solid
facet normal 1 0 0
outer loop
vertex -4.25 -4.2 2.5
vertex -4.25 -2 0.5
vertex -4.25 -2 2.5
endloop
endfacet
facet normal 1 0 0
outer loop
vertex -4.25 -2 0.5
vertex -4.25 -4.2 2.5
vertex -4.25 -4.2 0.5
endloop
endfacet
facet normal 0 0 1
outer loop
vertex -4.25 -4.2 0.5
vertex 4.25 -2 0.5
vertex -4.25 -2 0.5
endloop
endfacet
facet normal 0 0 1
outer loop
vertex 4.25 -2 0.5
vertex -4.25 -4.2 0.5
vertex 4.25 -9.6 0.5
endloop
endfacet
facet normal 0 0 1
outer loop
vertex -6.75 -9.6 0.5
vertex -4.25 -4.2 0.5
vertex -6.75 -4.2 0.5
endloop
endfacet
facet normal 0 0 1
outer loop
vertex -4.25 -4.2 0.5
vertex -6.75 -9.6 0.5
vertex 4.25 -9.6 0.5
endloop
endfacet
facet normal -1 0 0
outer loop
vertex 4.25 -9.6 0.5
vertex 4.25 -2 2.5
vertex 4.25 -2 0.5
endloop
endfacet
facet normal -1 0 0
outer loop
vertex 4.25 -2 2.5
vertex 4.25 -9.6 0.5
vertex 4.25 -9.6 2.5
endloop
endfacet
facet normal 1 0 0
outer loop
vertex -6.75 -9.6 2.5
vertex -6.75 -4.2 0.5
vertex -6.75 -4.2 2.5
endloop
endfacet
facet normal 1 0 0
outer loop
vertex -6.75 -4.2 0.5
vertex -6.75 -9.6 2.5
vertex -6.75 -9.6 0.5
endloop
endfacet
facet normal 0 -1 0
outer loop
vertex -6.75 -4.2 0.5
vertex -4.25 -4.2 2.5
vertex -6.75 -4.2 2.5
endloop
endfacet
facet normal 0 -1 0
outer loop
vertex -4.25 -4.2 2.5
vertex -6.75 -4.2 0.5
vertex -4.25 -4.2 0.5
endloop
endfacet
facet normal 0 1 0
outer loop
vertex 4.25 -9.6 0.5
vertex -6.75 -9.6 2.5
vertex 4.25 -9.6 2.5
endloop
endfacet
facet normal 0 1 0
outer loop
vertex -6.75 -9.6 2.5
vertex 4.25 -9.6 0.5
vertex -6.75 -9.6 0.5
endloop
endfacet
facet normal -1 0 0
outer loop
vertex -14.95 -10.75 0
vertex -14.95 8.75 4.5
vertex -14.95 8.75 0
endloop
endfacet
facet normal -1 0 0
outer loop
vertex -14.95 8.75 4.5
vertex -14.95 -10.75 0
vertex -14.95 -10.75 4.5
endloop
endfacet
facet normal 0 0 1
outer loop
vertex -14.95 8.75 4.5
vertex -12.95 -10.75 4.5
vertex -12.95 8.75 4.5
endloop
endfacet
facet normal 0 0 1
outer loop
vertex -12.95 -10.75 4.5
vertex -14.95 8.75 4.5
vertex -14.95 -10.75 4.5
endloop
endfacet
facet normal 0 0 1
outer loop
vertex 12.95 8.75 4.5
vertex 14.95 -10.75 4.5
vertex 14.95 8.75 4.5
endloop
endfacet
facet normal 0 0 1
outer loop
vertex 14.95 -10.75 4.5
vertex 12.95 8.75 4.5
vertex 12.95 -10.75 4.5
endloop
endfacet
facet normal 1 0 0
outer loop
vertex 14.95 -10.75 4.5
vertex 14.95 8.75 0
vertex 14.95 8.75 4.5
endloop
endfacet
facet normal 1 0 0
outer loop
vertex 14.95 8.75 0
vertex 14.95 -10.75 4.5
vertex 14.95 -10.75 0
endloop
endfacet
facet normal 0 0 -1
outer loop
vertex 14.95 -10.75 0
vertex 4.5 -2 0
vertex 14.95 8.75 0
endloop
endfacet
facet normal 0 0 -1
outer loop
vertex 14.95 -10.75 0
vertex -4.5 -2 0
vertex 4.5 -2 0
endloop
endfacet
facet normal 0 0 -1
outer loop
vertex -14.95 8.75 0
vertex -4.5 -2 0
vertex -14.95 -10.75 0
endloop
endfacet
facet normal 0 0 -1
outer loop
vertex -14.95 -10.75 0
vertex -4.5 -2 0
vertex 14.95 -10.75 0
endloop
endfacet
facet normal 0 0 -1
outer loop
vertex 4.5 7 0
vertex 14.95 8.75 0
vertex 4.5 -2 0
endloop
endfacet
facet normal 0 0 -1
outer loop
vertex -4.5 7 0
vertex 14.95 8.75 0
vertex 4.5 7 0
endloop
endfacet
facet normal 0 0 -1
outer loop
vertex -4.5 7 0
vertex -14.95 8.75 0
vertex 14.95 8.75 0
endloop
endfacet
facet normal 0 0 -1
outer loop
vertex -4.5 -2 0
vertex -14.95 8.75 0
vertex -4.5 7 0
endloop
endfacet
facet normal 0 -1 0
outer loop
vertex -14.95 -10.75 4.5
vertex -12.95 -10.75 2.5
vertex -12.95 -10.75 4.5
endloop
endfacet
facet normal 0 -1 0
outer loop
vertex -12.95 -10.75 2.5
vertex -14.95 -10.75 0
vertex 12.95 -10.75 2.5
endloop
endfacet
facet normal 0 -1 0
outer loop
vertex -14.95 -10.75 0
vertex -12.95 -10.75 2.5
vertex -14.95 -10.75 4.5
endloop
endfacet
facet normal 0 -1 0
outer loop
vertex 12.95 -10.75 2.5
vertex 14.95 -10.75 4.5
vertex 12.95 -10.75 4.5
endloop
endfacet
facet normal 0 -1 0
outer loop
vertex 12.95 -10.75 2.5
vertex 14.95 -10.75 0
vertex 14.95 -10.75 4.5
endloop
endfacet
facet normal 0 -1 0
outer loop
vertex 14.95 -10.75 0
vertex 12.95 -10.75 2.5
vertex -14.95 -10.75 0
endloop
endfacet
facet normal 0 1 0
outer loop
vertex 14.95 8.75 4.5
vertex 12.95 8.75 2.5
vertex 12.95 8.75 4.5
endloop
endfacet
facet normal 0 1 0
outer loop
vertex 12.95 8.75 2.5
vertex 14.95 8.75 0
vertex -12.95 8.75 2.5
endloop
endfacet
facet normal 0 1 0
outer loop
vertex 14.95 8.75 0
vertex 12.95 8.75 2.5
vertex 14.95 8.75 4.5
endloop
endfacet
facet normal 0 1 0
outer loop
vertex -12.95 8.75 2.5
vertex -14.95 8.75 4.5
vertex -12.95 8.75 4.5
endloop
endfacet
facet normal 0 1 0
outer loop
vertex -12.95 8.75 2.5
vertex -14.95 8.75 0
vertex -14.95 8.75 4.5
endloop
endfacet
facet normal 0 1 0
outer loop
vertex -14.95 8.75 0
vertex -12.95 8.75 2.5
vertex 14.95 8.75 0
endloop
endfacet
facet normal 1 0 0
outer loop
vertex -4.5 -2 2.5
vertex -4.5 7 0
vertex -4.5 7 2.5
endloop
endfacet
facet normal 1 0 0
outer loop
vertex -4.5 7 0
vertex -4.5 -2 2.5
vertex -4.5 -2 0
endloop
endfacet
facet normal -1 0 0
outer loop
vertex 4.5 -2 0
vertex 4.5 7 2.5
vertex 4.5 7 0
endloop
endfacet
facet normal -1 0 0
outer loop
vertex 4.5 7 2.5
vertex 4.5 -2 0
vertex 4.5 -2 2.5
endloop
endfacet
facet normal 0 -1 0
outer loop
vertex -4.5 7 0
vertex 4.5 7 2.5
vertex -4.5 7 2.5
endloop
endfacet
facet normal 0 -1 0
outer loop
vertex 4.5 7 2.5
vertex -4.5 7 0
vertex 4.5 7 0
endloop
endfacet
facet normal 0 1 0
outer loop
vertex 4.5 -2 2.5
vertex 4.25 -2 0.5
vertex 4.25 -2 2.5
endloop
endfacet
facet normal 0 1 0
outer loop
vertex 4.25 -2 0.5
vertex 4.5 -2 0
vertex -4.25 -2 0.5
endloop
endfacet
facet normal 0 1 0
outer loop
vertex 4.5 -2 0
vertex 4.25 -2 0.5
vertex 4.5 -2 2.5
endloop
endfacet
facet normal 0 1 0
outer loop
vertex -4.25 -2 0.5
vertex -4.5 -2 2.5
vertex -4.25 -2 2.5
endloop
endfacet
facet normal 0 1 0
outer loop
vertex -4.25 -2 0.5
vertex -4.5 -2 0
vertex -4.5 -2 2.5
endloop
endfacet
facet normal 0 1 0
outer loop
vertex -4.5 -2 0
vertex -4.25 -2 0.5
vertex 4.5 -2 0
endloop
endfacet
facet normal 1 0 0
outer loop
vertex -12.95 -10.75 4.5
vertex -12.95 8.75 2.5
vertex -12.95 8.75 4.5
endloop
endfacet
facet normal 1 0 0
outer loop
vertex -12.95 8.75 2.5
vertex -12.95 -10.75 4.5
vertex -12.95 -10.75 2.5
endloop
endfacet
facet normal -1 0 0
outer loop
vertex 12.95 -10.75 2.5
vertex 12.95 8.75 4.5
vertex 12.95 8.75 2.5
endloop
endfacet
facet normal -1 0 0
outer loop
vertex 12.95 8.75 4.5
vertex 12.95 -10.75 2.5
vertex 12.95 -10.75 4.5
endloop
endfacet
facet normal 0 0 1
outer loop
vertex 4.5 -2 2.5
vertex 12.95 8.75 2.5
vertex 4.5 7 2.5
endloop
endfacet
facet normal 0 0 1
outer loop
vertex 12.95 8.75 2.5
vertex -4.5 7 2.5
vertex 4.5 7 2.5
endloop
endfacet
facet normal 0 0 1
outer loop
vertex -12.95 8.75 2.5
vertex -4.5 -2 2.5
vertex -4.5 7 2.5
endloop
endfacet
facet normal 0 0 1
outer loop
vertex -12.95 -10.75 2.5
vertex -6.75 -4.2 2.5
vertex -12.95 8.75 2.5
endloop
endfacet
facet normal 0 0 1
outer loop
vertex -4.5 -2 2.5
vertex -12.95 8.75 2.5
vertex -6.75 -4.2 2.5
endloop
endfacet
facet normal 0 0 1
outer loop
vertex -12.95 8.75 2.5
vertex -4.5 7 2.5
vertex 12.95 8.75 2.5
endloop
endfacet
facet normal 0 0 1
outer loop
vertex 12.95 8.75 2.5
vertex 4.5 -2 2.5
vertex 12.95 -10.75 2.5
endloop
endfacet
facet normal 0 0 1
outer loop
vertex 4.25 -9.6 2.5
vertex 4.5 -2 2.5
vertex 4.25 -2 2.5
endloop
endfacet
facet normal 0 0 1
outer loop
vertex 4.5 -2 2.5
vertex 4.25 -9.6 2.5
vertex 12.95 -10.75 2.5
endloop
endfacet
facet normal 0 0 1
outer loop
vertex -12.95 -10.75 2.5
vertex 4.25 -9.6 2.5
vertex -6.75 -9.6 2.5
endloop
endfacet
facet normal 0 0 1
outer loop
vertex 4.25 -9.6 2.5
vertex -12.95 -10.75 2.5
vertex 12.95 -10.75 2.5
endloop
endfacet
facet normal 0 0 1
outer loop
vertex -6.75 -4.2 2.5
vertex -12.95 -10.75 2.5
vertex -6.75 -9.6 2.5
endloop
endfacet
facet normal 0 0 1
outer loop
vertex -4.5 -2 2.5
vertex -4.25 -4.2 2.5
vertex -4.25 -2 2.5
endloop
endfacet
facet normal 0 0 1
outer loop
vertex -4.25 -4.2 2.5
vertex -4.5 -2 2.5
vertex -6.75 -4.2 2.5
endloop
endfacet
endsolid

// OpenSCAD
// this file just pulls out one module from picamera_2

use <./picamera_2.scad>;

picamera_2_gripper();
